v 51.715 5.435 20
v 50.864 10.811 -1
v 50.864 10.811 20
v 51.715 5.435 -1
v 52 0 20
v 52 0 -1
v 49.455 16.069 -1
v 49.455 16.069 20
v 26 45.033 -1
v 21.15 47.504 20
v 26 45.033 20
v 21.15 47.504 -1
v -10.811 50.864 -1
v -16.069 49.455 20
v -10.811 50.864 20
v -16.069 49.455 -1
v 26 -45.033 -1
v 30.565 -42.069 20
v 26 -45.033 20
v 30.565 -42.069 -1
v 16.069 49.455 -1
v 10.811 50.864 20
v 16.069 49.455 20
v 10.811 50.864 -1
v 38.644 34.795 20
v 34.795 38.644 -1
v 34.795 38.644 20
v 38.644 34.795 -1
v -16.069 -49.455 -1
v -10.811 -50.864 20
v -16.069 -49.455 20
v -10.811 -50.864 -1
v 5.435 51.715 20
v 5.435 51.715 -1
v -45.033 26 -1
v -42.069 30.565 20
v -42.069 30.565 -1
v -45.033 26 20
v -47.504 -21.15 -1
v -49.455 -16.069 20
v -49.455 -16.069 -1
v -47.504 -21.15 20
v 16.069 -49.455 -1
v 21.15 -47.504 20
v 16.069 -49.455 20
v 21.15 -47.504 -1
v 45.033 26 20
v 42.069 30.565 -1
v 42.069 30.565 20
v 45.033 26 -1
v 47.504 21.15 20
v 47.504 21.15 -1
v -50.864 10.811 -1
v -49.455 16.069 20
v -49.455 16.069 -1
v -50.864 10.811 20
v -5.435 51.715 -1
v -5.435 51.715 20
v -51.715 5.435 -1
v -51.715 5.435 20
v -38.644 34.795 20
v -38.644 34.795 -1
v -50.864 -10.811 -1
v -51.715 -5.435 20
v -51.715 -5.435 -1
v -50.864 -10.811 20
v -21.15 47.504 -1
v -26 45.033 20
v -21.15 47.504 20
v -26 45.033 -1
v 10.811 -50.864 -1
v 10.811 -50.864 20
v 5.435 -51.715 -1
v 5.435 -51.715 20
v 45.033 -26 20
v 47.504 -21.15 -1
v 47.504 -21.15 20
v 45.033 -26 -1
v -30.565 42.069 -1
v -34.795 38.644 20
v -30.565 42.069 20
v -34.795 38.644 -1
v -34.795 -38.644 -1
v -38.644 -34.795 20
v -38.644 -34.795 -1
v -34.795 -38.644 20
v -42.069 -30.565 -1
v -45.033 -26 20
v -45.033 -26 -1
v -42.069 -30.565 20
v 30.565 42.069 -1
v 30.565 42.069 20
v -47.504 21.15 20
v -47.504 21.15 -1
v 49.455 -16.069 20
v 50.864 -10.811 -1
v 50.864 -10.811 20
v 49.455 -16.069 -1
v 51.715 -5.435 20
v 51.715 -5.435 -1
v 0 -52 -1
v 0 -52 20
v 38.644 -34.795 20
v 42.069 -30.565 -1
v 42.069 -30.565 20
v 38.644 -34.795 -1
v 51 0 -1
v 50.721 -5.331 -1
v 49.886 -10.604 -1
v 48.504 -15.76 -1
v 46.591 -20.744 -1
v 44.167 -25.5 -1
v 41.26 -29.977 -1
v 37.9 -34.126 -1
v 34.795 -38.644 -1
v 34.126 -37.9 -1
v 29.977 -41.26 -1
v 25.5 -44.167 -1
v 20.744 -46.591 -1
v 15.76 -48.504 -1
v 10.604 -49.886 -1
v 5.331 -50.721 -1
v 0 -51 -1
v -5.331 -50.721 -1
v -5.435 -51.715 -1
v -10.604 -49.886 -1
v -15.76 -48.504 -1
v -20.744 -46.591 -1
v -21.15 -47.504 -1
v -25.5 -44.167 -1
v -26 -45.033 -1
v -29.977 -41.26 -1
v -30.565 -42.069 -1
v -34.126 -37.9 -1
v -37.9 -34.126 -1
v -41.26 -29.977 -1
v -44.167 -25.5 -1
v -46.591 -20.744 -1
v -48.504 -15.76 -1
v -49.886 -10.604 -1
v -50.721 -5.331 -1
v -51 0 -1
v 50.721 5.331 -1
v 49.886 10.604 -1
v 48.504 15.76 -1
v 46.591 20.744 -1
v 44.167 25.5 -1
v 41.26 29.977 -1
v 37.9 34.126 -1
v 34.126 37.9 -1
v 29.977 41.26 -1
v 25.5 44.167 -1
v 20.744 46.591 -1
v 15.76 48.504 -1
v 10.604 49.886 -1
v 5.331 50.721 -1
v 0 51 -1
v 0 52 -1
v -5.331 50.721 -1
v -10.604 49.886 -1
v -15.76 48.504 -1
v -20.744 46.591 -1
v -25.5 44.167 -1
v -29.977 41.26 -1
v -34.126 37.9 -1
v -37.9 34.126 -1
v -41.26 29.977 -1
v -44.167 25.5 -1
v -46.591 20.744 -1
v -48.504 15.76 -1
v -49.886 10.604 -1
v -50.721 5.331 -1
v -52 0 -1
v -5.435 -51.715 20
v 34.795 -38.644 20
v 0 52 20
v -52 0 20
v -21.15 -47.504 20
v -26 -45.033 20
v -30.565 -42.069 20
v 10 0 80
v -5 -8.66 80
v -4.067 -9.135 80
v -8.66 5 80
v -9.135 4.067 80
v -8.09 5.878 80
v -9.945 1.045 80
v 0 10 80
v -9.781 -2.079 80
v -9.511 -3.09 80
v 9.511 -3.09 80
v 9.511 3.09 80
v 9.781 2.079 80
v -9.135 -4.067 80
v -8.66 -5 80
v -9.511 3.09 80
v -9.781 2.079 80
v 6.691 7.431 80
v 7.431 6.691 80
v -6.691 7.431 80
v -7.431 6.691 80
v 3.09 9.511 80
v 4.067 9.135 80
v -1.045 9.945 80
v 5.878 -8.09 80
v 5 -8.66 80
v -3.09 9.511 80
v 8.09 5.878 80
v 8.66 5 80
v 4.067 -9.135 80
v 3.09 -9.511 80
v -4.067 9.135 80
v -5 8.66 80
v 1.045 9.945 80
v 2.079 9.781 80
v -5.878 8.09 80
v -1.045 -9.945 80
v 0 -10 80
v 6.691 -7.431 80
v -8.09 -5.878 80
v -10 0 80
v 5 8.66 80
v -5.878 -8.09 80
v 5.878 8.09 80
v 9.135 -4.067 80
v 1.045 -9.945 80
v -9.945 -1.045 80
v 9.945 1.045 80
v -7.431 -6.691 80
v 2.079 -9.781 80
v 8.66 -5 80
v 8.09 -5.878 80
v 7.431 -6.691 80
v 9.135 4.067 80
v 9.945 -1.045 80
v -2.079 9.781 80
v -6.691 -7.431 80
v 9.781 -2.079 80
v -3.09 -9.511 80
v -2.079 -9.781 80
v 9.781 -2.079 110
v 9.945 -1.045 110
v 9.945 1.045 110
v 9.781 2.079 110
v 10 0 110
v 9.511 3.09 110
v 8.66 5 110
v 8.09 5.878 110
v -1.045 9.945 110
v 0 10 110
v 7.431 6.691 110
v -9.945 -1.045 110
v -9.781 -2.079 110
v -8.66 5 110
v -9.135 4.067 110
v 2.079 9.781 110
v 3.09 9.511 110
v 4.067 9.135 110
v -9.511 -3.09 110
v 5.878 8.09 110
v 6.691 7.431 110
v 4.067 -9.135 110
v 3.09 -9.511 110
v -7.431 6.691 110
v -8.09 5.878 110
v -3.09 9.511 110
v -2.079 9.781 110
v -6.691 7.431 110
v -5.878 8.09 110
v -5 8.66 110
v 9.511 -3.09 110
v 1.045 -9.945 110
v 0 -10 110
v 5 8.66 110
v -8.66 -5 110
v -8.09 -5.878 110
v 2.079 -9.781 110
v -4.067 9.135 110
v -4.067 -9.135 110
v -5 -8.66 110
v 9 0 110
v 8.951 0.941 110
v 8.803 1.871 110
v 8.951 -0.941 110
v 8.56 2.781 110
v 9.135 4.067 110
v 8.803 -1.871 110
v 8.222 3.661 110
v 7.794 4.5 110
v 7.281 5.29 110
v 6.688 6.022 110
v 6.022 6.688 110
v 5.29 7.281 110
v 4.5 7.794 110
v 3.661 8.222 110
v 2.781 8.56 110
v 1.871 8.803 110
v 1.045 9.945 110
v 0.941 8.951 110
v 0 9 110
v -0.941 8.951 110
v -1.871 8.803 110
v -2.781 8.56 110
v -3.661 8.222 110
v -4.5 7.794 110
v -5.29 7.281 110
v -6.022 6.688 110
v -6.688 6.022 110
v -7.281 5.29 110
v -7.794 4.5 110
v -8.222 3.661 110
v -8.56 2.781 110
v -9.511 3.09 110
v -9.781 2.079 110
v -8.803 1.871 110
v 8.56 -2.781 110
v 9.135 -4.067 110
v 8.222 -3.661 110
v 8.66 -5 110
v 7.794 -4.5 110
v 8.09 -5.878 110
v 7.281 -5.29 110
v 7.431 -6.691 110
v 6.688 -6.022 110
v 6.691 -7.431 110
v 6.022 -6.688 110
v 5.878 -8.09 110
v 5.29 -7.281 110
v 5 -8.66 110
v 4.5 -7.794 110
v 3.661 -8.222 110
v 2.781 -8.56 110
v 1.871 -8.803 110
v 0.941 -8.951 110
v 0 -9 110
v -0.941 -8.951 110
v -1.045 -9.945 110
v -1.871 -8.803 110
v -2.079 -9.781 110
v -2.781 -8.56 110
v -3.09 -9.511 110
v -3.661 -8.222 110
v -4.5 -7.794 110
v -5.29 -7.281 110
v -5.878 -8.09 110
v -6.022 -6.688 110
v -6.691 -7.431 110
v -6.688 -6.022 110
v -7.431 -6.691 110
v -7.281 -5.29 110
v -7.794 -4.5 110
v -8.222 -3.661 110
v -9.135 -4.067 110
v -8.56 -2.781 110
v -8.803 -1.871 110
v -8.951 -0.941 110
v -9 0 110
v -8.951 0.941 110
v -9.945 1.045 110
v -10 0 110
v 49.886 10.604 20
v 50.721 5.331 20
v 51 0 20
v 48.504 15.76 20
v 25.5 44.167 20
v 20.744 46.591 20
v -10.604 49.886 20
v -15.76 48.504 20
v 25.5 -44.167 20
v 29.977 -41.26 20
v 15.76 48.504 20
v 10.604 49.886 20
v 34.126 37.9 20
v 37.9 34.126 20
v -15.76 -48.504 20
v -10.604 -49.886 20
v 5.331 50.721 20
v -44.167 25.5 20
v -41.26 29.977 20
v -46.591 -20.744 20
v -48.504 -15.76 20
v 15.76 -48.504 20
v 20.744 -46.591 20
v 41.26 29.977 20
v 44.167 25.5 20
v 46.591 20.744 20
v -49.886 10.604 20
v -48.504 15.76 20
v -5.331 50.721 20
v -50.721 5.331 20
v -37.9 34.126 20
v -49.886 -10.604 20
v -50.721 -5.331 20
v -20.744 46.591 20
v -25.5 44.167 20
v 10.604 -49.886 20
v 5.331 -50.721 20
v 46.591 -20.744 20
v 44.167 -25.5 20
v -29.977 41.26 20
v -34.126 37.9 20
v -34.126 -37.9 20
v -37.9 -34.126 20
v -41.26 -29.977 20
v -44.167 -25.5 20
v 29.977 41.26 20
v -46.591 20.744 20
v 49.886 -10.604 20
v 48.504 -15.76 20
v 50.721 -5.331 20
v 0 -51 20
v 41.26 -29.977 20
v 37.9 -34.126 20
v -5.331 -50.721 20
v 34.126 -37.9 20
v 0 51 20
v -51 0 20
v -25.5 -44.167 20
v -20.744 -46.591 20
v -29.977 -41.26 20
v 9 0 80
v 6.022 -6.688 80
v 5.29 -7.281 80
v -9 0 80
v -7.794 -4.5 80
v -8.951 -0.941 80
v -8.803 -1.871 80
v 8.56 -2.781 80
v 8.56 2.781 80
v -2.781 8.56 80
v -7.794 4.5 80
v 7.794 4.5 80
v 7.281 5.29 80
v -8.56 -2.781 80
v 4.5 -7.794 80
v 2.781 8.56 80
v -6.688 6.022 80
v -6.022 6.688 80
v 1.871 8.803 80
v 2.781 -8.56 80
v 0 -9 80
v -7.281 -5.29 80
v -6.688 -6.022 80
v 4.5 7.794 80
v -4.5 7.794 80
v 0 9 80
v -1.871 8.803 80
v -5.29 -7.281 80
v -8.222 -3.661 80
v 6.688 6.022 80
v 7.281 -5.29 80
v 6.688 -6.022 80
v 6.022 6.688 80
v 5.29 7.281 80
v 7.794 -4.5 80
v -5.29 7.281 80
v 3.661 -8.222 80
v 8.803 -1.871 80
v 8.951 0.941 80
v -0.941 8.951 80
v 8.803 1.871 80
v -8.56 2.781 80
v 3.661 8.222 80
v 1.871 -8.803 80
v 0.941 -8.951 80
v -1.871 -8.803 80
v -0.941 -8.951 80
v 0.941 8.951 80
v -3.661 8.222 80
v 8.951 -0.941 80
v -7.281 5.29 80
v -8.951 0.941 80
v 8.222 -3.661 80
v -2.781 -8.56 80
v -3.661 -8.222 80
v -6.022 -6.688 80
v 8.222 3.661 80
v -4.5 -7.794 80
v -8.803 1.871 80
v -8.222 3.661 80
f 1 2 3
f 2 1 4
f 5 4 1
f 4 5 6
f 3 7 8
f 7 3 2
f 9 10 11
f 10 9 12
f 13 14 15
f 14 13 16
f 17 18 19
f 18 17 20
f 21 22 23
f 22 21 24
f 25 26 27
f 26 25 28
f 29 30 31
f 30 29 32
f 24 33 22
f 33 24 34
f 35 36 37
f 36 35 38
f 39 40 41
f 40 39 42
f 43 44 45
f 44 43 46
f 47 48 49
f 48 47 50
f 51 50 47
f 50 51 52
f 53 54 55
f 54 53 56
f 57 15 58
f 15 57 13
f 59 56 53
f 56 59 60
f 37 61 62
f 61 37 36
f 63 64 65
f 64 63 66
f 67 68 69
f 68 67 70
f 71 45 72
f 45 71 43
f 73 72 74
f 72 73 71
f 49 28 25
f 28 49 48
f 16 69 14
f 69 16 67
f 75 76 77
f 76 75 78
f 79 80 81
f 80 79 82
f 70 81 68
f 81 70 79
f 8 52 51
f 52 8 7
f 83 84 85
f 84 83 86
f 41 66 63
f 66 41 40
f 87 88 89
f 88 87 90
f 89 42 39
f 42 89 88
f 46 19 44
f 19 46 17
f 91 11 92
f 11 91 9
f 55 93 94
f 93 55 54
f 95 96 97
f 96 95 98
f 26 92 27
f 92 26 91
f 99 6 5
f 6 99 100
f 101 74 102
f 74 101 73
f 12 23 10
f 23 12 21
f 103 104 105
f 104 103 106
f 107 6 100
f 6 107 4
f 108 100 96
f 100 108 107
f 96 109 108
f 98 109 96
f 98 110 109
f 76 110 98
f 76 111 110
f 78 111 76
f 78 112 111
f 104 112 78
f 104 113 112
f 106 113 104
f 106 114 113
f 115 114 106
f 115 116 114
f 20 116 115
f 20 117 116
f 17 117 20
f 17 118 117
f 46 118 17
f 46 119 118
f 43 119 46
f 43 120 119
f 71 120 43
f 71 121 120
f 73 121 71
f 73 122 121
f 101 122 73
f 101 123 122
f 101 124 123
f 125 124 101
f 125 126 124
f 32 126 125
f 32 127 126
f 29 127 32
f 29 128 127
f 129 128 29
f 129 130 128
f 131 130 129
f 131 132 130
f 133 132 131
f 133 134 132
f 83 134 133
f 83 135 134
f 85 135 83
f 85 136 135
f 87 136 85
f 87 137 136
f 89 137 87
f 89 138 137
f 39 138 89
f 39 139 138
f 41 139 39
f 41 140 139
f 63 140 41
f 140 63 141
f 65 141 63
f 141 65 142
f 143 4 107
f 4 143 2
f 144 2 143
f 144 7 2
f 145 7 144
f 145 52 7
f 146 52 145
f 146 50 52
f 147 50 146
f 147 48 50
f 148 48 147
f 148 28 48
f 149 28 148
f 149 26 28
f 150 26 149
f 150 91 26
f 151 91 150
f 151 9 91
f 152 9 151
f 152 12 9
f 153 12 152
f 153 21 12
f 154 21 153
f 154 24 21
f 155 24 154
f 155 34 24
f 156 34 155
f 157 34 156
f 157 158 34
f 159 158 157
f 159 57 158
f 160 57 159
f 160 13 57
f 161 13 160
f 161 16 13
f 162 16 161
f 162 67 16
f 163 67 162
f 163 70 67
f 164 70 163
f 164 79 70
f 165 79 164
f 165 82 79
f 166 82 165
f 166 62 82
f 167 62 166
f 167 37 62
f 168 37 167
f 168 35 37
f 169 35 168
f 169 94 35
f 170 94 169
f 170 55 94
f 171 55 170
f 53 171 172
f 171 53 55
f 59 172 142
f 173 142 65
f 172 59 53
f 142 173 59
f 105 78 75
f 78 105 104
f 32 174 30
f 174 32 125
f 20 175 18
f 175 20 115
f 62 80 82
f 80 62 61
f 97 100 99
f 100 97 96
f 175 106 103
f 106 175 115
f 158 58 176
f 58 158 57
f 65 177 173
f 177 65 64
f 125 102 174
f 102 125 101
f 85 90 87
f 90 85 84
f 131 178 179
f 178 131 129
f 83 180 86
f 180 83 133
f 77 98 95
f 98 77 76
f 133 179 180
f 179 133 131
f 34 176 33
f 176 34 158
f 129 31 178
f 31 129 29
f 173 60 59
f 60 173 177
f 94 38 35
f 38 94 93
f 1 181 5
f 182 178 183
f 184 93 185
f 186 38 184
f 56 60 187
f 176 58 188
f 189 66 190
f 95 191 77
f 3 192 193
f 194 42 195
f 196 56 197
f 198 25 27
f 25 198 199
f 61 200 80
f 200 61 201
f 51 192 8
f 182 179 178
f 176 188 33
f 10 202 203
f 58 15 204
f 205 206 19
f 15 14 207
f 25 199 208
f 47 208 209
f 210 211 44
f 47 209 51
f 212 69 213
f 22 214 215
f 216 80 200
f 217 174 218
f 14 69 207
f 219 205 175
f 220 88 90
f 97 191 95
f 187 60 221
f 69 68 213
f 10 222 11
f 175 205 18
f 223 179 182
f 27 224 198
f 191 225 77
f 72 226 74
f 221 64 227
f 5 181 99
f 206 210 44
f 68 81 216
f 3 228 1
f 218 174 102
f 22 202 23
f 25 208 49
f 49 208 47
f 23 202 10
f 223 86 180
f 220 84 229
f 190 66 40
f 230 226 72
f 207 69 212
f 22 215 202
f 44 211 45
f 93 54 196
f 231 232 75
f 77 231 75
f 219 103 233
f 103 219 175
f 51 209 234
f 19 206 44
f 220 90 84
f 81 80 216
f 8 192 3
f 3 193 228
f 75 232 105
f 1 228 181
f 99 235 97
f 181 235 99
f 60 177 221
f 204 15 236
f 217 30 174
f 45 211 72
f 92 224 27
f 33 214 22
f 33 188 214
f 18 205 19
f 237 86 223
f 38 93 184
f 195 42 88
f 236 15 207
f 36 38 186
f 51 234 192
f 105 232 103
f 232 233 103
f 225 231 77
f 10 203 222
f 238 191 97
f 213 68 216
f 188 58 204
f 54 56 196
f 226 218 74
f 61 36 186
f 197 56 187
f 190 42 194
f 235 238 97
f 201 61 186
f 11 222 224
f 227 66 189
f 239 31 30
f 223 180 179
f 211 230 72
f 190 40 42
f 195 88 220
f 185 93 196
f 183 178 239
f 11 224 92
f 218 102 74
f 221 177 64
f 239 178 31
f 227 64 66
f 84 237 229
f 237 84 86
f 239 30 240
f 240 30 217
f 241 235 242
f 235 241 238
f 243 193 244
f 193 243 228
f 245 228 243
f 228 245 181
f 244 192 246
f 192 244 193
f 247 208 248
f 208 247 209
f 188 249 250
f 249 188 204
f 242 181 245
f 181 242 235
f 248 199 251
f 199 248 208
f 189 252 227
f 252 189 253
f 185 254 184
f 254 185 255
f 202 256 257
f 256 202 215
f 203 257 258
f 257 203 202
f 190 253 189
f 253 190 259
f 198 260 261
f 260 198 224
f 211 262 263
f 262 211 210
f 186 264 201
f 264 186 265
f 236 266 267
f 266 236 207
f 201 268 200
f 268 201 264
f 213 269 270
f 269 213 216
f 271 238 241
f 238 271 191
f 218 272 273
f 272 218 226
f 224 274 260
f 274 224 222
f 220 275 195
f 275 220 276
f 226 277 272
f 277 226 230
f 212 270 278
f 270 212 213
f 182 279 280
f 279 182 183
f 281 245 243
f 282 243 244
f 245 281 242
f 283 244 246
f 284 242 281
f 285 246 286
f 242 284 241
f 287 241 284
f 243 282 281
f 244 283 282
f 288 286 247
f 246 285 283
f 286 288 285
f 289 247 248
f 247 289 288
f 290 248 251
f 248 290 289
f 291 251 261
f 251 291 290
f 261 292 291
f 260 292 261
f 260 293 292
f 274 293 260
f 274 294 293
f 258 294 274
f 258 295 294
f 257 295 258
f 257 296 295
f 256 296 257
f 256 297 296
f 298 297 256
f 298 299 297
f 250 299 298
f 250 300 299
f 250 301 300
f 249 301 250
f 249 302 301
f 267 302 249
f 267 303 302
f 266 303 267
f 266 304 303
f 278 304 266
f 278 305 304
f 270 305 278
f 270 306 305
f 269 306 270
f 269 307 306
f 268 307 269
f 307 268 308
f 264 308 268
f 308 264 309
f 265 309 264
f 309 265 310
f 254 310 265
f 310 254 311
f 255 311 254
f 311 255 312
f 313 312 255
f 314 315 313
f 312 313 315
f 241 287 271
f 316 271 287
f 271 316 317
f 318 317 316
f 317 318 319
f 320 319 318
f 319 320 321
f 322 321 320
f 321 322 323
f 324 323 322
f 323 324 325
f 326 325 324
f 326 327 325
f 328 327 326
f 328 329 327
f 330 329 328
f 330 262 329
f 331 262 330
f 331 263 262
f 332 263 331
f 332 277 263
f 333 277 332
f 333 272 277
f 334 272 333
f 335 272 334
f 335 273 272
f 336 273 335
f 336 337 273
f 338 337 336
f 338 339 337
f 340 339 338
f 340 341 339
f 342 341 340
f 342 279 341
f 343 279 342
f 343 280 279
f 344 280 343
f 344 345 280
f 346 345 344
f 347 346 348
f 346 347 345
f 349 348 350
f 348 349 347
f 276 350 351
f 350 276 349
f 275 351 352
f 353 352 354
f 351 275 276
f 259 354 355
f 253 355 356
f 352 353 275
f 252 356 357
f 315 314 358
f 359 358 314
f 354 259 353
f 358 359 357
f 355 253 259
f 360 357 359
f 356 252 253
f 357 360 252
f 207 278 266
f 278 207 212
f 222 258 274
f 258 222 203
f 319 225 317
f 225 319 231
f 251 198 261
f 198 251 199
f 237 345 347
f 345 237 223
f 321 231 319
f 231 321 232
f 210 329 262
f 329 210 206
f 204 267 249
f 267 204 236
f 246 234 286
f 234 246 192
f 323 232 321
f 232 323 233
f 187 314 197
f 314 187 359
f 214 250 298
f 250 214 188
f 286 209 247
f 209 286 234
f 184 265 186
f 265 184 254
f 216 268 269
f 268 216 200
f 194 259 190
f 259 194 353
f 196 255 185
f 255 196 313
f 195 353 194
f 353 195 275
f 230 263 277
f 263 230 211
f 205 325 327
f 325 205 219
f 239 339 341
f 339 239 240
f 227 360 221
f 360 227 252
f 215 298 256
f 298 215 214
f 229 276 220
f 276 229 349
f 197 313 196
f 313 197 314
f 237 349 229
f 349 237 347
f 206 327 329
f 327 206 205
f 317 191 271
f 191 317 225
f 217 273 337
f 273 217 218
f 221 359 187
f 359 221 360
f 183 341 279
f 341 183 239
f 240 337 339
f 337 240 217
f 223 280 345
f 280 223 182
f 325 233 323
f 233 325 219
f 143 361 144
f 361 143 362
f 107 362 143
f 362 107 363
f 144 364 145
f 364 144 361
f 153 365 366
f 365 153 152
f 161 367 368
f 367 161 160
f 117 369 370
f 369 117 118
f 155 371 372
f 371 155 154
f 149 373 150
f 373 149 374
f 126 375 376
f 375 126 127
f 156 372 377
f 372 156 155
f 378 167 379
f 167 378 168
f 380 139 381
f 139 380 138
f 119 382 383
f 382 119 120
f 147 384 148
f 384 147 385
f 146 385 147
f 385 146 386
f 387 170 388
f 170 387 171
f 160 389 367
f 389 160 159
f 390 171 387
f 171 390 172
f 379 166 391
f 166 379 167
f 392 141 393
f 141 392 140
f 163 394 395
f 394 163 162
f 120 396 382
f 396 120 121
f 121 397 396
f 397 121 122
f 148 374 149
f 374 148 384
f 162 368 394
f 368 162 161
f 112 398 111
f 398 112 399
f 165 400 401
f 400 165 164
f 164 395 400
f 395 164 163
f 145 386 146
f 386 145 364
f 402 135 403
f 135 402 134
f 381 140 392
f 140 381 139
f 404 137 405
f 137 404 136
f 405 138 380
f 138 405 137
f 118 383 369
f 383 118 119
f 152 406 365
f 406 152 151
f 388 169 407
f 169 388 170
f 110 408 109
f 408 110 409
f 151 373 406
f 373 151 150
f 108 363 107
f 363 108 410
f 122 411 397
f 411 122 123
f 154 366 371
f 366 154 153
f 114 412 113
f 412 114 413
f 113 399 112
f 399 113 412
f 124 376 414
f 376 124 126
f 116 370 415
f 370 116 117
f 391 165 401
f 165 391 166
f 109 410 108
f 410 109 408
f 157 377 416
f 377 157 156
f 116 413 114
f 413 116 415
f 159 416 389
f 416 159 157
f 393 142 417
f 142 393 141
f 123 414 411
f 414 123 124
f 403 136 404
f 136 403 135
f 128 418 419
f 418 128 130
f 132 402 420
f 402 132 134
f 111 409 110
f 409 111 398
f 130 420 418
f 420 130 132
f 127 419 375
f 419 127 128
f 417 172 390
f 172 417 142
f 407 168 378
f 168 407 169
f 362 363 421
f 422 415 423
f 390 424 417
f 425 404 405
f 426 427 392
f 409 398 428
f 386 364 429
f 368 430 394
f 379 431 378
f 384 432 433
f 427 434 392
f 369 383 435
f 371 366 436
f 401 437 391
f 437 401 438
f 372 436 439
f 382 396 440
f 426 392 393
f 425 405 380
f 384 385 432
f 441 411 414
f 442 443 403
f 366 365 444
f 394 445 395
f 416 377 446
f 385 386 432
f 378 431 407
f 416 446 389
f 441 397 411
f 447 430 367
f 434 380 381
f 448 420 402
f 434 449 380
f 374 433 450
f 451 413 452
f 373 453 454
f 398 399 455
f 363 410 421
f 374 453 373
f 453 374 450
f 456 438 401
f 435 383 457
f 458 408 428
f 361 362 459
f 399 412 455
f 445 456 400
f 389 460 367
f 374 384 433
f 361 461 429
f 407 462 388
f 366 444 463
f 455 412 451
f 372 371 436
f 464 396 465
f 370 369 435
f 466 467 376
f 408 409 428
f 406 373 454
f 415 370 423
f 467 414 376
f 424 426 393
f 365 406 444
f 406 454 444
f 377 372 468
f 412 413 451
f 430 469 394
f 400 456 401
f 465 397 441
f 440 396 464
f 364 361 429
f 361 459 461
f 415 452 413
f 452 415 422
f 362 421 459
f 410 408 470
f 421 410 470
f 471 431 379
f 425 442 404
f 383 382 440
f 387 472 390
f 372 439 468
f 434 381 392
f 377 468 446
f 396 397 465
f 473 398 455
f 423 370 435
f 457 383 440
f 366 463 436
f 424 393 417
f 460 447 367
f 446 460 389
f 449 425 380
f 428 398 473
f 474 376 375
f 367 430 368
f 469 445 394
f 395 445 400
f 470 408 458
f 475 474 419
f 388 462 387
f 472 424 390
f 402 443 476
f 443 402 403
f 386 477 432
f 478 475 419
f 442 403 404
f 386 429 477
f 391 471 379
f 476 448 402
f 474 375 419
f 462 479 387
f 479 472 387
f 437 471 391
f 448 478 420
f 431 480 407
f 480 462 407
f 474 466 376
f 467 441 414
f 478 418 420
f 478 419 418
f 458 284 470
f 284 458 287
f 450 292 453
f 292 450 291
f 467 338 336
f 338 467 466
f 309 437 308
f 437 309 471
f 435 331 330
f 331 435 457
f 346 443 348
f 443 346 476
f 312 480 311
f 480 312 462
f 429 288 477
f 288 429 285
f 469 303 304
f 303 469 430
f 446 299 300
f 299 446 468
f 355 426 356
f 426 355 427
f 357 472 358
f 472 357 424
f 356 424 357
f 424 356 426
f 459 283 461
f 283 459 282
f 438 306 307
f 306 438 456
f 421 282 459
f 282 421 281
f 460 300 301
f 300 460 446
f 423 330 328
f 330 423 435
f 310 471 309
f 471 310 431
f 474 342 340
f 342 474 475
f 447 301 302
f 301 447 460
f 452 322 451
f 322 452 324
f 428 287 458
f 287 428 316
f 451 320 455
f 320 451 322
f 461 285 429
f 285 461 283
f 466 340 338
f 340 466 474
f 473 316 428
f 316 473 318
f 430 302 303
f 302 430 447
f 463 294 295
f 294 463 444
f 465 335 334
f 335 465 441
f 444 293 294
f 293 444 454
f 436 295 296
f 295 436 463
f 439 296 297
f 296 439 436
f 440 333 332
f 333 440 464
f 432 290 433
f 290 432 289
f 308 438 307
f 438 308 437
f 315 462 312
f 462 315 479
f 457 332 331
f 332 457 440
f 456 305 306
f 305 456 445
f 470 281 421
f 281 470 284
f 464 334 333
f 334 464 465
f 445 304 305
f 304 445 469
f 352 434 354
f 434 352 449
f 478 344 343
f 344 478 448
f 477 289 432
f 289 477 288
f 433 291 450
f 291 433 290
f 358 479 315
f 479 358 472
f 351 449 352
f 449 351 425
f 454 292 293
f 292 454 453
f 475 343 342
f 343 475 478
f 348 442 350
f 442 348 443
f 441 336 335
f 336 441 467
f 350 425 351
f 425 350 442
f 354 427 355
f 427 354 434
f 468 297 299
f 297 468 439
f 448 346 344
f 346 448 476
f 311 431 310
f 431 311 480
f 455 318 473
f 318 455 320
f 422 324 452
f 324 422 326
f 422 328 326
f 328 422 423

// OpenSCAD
module funnel(r1, h1, r2, h2, h3) {
    union() {
       translate([0, 0, -1]) cylinder(h=h1+1, r=r1);
       translate([0, 0, h1]) cylinder(h=h2, r1=r1, r2=r2);
       translate([0, 0, h1 + h2 - 1]) cylinder(h=h3+1, r=r2);
    }
}

module empty_funnel(r1, h1, r2, h2, h3, thickness=1) {
    difference() {
        funnel(r1, h1, r2, h2, h3);
        translate([0, 0, -1]) funnel(r1 - thickness, h1 + 1, r2 - thickness, h2, h3 + 1);
    }
}

$fn = 60;

empty_funnel(52, 20, 10, 60, 30);
